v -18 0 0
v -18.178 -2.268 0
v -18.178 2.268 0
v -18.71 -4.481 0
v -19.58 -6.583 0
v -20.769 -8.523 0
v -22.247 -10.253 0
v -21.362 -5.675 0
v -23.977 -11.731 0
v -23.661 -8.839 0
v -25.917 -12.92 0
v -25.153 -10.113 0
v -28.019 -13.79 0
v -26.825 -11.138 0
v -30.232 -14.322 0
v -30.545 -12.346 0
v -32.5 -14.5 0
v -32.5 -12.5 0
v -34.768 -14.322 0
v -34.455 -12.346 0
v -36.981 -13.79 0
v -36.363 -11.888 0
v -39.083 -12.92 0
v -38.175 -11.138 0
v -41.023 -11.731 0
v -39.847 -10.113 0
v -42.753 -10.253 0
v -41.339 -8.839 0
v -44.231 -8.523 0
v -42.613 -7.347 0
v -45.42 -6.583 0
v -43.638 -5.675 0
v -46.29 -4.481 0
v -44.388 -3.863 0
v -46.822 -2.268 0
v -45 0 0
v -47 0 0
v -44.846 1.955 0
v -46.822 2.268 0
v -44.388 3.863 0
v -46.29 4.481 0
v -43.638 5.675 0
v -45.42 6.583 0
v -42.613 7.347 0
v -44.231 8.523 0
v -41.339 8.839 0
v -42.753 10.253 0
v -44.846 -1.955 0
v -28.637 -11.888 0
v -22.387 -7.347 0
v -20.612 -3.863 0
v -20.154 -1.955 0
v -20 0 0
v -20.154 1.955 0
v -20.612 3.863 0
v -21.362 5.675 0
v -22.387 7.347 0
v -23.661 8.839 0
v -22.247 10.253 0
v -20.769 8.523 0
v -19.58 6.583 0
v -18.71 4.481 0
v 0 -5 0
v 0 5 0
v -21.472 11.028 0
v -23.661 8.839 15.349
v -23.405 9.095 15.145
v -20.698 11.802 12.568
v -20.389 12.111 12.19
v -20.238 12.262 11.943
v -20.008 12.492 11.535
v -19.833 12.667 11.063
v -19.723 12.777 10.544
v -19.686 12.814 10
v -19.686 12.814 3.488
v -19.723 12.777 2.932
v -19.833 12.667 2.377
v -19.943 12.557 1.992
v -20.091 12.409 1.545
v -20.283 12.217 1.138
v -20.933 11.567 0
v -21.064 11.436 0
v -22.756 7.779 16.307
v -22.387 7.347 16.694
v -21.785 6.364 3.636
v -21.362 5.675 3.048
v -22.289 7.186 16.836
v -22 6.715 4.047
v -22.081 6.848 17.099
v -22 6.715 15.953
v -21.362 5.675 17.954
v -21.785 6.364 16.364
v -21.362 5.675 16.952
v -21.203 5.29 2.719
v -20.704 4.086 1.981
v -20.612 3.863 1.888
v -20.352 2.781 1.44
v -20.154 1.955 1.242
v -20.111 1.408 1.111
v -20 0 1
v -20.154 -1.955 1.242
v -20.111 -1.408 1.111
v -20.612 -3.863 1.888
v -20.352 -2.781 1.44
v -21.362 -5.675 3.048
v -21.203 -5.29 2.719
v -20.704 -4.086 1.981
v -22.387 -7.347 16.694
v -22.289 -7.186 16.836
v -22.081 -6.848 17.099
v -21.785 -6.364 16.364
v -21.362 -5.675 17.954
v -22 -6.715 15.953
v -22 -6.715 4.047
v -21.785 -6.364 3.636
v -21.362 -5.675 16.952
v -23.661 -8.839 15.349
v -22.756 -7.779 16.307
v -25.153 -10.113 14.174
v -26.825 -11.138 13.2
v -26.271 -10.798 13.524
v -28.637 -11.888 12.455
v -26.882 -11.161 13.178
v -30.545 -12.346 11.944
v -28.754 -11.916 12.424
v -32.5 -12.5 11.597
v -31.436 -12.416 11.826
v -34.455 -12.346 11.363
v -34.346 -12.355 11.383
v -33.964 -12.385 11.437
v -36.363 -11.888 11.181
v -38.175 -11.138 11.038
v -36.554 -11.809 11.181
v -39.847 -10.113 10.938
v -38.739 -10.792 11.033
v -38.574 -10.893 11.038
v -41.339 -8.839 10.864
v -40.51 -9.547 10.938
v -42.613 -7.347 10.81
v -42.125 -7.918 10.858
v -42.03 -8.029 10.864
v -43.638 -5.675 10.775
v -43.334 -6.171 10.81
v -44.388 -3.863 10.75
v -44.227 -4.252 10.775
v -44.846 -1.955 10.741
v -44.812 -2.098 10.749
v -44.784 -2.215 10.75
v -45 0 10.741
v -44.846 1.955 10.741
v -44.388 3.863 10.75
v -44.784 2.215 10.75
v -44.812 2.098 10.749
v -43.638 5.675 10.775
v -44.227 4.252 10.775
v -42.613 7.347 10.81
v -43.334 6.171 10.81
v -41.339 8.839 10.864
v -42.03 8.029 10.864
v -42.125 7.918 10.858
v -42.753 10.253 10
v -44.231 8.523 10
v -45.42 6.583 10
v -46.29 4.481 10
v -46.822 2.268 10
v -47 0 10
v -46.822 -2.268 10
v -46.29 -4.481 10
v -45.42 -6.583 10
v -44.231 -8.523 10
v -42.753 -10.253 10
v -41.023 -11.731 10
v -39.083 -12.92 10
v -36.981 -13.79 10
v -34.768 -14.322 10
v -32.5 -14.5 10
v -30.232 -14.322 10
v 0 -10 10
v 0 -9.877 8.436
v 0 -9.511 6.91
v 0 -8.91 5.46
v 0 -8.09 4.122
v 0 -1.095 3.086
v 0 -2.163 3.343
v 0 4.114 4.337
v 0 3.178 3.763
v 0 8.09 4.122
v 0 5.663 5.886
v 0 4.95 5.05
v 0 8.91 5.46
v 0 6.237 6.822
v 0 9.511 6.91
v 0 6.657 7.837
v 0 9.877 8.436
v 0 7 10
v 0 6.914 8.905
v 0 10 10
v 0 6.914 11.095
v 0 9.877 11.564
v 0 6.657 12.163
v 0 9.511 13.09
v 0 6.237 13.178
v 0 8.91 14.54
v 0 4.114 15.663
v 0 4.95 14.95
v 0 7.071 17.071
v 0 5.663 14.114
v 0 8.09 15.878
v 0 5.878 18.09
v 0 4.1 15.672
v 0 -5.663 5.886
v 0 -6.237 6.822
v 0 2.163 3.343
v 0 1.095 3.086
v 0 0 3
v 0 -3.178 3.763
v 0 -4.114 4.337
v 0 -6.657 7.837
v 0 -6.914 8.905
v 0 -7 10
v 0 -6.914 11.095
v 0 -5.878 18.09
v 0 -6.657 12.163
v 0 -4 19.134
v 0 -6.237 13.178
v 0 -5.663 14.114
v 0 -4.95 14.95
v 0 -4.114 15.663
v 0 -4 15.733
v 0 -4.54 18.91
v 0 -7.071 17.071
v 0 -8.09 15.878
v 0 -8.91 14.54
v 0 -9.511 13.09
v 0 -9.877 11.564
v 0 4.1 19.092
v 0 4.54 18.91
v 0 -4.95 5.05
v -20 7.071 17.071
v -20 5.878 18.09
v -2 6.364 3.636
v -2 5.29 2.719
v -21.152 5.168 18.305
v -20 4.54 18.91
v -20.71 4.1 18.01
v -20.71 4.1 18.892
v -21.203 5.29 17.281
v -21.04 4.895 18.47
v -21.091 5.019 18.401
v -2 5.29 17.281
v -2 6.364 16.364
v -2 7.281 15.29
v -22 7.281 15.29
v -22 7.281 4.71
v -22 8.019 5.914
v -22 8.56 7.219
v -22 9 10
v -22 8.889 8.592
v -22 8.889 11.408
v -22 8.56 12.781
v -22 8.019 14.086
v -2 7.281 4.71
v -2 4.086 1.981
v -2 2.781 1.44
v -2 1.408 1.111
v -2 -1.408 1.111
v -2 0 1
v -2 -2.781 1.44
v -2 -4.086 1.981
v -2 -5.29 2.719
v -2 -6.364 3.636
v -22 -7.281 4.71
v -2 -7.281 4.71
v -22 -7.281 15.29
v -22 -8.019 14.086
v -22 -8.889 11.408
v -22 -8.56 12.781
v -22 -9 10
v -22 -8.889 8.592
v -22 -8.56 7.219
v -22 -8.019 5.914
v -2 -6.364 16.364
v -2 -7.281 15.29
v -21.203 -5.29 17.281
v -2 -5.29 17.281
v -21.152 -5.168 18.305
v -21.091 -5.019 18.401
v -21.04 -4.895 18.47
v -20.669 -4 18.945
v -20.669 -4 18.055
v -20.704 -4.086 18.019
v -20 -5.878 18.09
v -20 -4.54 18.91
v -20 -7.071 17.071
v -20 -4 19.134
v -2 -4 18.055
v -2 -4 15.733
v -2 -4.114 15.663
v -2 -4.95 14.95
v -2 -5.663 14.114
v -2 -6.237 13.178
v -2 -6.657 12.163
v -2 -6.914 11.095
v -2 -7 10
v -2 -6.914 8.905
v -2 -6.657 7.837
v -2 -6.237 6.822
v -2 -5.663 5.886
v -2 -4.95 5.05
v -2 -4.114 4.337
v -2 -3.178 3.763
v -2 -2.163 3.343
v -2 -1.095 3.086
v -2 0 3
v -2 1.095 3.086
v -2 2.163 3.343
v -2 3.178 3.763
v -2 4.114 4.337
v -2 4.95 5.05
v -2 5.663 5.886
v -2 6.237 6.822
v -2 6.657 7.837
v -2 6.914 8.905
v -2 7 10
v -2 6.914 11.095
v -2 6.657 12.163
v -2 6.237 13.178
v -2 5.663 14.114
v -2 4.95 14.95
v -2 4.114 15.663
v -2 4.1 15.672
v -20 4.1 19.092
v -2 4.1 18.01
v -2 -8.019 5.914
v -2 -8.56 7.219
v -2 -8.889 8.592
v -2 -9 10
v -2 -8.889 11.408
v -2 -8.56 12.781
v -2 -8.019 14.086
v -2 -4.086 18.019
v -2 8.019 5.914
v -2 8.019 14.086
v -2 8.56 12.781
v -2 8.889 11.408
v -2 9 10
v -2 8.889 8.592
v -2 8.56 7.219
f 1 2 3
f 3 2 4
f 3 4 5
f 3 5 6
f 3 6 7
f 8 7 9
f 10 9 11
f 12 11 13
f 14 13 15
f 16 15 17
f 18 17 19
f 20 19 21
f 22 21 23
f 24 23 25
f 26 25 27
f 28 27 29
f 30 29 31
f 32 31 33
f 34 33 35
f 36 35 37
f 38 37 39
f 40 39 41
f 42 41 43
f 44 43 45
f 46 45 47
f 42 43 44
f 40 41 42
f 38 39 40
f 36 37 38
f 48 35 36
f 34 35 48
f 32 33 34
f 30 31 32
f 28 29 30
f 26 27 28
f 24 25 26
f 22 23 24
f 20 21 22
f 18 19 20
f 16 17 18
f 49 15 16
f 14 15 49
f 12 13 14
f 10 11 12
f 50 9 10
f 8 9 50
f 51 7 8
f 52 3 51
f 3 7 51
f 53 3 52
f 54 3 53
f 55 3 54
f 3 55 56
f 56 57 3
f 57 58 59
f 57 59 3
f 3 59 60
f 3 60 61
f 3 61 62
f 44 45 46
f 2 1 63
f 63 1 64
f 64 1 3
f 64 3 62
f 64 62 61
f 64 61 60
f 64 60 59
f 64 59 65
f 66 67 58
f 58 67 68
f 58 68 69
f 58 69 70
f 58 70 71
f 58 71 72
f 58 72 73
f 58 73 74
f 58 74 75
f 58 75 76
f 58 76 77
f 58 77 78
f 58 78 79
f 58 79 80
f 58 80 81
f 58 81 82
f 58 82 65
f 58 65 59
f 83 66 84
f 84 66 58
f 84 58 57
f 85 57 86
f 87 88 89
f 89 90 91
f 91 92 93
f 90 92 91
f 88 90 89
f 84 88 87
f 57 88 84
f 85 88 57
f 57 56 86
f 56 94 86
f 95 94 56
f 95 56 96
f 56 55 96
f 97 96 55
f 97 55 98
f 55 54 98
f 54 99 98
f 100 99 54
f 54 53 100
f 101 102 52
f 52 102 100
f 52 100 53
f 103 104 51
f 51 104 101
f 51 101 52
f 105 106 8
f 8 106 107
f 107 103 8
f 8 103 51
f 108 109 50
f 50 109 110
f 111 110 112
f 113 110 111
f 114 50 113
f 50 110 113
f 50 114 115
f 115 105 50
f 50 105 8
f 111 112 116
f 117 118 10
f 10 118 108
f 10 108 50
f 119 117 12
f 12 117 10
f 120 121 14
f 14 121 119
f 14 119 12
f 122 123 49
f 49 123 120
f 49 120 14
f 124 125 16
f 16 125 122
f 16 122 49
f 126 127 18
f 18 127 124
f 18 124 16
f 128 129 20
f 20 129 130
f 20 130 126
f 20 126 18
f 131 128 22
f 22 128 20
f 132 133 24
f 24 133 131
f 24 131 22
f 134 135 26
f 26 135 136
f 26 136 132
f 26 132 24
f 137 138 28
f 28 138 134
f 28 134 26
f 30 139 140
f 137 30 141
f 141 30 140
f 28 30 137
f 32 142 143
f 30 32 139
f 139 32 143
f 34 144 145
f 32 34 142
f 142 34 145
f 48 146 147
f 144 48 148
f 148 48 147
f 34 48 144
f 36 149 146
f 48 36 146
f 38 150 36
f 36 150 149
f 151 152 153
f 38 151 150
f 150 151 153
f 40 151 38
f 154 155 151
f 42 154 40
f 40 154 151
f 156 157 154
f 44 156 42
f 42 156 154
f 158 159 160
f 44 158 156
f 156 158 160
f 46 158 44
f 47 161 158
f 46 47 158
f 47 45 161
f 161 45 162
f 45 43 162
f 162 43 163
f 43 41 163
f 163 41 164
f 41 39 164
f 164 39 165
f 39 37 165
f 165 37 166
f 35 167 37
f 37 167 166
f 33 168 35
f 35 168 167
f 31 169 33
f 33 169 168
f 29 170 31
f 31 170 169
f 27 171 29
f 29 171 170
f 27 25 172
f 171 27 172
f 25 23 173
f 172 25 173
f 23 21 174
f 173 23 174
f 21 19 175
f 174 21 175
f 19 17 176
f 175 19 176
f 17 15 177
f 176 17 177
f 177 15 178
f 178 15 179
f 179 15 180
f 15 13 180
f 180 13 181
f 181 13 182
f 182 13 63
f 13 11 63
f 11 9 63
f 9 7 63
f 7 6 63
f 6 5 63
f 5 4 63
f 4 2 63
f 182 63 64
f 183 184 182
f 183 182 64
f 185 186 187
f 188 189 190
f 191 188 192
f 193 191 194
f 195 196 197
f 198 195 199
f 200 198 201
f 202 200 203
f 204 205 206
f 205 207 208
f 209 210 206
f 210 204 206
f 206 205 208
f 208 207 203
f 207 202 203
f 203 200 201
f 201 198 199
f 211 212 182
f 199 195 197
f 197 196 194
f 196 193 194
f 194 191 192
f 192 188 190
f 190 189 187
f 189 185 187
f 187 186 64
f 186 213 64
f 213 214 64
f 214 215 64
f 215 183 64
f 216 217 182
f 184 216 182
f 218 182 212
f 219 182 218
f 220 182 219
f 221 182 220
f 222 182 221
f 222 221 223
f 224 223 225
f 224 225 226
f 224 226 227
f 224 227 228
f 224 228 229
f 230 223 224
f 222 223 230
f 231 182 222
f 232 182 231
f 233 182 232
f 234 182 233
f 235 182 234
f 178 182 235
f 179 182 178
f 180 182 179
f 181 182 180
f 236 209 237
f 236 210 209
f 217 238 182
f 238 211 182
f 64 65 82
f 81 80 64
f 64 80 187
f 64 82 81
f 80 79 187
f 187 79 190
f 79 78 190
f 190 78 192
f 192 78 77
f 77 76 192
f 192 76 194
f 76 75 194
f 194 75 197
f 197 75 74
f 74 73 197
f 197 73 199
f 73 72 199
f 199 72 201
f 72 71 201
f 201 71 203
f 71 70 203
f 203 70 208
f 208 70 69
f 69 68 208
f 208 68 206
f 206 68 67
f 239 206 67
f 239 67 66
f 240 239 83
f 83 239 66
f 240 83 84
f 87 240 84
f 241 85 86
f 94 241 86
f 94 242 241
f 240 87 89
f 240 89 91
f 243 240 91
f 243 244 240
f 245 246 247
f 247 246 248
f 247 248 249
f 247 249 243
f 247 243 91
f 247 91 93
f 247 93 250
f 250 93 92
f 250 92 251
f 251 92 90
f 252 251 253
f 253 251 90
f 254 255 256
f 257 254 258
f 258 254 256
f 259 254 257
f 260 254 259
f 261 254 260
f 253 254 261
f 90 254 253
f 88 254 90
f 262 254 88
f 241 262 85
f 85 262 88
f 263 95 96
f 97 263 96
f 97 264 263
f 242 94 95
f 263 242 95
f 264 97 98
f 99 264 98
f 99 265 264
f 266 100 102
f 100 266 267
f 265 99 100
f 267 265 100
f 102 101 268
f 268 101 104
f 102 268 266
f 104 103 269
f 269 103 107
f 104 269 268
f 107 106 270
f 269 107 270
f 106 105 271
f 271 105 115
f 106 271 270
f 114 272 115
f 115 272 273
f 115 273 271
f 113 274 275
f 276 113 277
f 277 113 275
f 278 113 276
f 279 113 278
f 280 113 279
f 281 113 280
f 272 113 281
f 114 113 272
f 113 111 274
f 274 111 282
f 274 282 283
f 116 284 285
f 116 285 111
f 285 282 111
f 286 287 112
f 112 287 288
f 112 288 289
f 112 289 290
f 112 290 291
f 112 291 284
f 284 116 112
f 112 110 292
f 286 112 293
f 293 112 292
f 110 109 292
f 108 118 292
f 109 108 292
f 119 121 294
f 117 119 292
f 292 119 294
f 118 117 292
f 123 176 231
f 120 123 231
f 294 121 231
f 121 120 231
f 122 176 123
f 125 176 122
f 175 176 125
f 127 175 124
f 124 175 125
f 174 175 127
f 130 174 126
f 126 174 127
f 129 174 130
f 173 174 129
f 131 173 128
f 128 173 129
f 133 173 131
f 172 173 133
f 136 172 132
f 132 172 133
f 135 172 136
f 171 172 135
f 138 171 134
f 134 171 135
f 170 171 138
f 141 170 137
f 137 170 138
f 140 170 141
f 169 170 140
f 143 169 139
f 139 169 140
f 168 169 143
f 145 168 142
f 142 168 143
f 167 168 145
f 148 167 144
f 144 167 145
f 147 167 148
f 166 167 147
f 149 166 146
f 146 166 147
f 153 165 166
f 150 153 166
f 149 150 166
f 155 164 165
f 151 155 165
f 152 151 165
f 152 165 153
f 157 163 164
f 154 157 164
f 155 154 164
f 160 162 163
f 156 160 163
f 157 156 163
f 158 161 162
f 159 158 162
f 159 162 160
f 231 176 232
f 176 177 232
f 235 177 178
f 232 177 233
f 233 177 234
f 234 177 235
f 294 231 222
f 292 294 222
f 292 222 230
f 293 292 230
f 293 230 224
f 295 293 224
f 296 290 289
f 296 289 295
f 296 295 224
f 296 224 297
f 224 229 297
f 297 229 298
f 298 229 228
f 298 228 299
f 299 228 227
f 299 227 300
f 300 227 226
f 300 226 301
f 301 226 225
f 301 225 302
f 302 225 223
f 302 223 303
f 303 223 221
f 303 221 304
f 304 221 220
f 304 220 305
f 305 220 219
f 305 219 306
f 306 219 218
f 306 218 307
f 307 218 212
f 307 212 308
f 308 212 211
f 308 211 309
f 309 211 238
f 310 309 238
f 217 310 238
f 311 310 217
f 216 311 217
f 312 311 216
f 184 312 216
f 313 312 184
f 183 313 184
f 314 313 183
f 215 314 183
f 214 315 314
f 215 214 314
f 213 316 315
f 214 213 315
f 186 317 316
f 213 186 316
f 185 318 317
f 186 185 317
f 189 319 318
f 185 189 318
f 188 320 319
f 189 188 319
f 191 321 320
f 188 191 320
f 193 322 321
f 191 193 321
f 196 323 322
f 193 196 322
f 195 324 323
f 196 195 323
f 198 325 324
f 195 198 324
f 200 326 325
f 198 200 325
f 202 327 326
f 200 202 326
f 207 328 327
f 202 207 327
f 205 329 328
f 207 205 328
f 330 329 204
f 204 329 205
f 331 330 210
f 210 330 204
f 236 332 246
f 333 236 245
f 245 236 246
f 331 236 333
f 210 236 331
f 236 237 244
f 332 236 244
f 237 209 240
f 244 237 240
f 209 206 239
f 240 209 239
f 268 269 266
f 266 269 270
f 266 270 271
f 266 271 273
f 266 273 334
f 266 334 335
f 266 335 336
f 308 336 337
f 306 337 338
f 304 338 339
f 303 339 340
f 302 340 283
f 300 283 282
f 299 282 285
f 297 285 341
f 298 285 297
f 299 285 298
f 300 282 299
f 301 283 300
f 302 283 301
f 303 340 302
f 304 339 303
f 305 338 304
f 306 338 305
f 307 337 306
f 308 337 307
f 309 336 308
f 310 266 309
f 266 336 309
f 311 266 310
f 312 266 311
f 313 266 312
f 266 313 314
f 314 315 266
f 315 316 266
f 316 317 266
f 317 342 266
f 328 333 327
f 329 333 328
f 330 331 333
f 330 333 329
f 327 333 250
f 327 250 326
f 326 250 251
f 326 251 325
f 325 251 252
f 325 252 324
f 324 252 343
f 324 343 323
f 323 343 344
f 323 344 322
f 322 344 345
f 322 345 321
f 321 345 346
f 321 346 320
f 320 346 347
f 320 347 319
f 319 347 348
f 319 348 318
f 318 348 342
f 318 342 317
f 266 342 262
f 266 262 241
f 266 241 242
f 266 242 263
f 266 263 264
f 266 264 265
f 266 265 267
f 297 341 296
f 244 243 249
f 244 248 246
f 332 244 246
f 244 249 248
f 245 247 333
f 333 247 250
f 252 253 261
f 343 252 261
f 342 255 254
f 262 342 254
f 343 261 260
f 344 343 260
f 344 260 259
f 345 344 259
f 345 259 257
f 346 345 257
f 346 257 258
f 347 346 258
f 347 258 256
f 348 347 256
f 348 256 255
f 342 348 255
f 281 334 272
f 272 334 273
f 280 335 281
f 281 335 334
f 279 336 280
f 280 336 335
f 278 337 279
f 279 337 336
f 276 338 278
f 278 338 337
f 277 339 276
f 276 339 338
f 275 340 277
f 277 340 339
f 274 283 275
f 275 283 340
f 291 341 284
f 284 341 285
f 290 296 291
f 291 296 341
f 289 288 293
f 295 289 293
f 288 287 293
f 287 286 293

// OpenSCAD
/*
 * Curtain rod hook
 *
 *  Elliot Buller
 *  2016
 */

// Circle smoothness
$fn = 40;

// Wall thickness
wall = 1;

// Connector inside diameter
cnt_id = 18;
cnt_od = (cnt_id + 2*wall);
cnt_h = 20;

// Screw slot
cnt_slot_w = 8;
cnt_slot_h = cnt_h + 1;// - 5;

// Screw tab
cnt_tab_w = 10;
cnt_tab_h = 10;

// Screw diameter
screw_d = 4.5;

// Pole dimensions
pole_d = 25;
//hook_w = 10;

module screw_tab ()
{
	translate ([0, -wall/2, 0])
	difference () {

		// Add screw tabs
		hull () {
			cube ([cnt_tab_w/2, wall, cnt_tab_h]);
			translate ([cnt_tab_w/2, wall, cnt_tab_w/2])
			rotate ([90, 0, 0])
			cylinder (r=cnt_tab_w/2, h=wall);
		}

		// Add screw hole
		translate ([cnt_tab_w/2, wall + 0.05, cnt_tab_h/2])
		rotate ([90, 0, 0])
		cylinder (r = screw_d/2, h=wall+0.1);
	}
}

module connector()
{
	difference () {

		// Outside
		cylinder (r = cnt_od / 2, h = cnt_h);

		// collar
		translate ([0, 0, wall])
		cylinder (r = cnt_id / 2, h = cnt_h);

		// hollow center
		cylinder (r = (cnt_id / 2)-wall/2, h = cnt_h);

		// Remove slot
		translate ([0, -cnt_slot_w / 2, 0])
		cube ([cnt_od / 2, cnt_slot_w, cnt_slot_h]);
	}

	// Add screw tabs
	translate ([cnt_id/2, cnt_slot_w / 2 + wall/2, 0])
	screw_tab ();
	translate ([cnt_id/2, -cnt_slot_w / 2 - wall/2, 0])
	screw_tab ();
}


module hook ()
{

	difference () {

		cylinder (r=(pole_d/2)+wall, h=cnt_od);
		cylinder (r=pole_d/2, h=cnt_od);

		// Remove pole entry
		cube ([(pole_d/2)+wall, (pole_d/2)+wall, cnt_od]);
	}
}

module assm () {
		translate ([cnt_od/2, 0, pole_d/2 + cnt_h])
		rotate([0, -90, 0])
		rotate([0, 0, 45])
		hook ();
		connector ();
}

//translate ([0, 0, cnt_od/2])
//rotate ([0, -90, 0])
//assm ();

module test () {


	difference () {
		hull () {
			// connector hull
			union () {
				cylinder (r = cnt_od / 2, h = cnt_h);
				translate ([-cnt_od/4, 0, cnt_h/2])
				cube ([cnt_od/2, cnt_od/2, cnt_h], center=true);
			}

			// hook hull
			//translate ([cnt_od/2, 0, pole_d/2 + cnt_h])
			translate ([0, 0, pole_d/2 + cnt_h])
			rotate([0, -90, 0])
			rotate([0, 0, 45])
			cylinder (r=(pole_d/2)+2*wall, h=cnt_od/2);
		}

		// Hole for pole
		translate ([cnt_od/2+0.1, 0, pole_d/2 + cnt_h])
		rotate([0, -90, 0])
		rotate([0, 0, 45])
		cylinder (r=pole_d/2, h=cnt_od+0.2);

		// Pole entry
		translate ([cnt_od/2+0.1, 0, pole_d/2 + cnt_h])
		rotate([0, -90, 0])
		rotate([0, 0, 45])
		cube ([(pole_d/2)+2*wall, (pole_d/2)+6*wall, cnt_od+wall]);

		// collar
		translate ([0, 0, 2 * wall])
		cylinder (r = cnt_id / 2, h = cnt_h);

		// hollow center
		cylinder (r = (cnt_id / 2)-2, h = cnt_h);

		// Remove slot
		translate ([0.1, -cnt_slot_w / 2, 0])
		cube ([cnt_od / 2, cnt_slot_w+0.1, cnt_slot_h]);

	}
if (0) {
	// Add screw tabs
	translate ([cnt_id/2-0.5, cnt_slot_w / 2 + wall/2, 0])
	screw_tab ();
	translate ([cnt_id/2-0.5, -cnt_slot_w / 2 - wall/2, 0])
	screw_tab ();
}
}

translate ([0, 0, cnt_od/2])
rotate ([0, -90, 0])
test();

//screw_tab ();
